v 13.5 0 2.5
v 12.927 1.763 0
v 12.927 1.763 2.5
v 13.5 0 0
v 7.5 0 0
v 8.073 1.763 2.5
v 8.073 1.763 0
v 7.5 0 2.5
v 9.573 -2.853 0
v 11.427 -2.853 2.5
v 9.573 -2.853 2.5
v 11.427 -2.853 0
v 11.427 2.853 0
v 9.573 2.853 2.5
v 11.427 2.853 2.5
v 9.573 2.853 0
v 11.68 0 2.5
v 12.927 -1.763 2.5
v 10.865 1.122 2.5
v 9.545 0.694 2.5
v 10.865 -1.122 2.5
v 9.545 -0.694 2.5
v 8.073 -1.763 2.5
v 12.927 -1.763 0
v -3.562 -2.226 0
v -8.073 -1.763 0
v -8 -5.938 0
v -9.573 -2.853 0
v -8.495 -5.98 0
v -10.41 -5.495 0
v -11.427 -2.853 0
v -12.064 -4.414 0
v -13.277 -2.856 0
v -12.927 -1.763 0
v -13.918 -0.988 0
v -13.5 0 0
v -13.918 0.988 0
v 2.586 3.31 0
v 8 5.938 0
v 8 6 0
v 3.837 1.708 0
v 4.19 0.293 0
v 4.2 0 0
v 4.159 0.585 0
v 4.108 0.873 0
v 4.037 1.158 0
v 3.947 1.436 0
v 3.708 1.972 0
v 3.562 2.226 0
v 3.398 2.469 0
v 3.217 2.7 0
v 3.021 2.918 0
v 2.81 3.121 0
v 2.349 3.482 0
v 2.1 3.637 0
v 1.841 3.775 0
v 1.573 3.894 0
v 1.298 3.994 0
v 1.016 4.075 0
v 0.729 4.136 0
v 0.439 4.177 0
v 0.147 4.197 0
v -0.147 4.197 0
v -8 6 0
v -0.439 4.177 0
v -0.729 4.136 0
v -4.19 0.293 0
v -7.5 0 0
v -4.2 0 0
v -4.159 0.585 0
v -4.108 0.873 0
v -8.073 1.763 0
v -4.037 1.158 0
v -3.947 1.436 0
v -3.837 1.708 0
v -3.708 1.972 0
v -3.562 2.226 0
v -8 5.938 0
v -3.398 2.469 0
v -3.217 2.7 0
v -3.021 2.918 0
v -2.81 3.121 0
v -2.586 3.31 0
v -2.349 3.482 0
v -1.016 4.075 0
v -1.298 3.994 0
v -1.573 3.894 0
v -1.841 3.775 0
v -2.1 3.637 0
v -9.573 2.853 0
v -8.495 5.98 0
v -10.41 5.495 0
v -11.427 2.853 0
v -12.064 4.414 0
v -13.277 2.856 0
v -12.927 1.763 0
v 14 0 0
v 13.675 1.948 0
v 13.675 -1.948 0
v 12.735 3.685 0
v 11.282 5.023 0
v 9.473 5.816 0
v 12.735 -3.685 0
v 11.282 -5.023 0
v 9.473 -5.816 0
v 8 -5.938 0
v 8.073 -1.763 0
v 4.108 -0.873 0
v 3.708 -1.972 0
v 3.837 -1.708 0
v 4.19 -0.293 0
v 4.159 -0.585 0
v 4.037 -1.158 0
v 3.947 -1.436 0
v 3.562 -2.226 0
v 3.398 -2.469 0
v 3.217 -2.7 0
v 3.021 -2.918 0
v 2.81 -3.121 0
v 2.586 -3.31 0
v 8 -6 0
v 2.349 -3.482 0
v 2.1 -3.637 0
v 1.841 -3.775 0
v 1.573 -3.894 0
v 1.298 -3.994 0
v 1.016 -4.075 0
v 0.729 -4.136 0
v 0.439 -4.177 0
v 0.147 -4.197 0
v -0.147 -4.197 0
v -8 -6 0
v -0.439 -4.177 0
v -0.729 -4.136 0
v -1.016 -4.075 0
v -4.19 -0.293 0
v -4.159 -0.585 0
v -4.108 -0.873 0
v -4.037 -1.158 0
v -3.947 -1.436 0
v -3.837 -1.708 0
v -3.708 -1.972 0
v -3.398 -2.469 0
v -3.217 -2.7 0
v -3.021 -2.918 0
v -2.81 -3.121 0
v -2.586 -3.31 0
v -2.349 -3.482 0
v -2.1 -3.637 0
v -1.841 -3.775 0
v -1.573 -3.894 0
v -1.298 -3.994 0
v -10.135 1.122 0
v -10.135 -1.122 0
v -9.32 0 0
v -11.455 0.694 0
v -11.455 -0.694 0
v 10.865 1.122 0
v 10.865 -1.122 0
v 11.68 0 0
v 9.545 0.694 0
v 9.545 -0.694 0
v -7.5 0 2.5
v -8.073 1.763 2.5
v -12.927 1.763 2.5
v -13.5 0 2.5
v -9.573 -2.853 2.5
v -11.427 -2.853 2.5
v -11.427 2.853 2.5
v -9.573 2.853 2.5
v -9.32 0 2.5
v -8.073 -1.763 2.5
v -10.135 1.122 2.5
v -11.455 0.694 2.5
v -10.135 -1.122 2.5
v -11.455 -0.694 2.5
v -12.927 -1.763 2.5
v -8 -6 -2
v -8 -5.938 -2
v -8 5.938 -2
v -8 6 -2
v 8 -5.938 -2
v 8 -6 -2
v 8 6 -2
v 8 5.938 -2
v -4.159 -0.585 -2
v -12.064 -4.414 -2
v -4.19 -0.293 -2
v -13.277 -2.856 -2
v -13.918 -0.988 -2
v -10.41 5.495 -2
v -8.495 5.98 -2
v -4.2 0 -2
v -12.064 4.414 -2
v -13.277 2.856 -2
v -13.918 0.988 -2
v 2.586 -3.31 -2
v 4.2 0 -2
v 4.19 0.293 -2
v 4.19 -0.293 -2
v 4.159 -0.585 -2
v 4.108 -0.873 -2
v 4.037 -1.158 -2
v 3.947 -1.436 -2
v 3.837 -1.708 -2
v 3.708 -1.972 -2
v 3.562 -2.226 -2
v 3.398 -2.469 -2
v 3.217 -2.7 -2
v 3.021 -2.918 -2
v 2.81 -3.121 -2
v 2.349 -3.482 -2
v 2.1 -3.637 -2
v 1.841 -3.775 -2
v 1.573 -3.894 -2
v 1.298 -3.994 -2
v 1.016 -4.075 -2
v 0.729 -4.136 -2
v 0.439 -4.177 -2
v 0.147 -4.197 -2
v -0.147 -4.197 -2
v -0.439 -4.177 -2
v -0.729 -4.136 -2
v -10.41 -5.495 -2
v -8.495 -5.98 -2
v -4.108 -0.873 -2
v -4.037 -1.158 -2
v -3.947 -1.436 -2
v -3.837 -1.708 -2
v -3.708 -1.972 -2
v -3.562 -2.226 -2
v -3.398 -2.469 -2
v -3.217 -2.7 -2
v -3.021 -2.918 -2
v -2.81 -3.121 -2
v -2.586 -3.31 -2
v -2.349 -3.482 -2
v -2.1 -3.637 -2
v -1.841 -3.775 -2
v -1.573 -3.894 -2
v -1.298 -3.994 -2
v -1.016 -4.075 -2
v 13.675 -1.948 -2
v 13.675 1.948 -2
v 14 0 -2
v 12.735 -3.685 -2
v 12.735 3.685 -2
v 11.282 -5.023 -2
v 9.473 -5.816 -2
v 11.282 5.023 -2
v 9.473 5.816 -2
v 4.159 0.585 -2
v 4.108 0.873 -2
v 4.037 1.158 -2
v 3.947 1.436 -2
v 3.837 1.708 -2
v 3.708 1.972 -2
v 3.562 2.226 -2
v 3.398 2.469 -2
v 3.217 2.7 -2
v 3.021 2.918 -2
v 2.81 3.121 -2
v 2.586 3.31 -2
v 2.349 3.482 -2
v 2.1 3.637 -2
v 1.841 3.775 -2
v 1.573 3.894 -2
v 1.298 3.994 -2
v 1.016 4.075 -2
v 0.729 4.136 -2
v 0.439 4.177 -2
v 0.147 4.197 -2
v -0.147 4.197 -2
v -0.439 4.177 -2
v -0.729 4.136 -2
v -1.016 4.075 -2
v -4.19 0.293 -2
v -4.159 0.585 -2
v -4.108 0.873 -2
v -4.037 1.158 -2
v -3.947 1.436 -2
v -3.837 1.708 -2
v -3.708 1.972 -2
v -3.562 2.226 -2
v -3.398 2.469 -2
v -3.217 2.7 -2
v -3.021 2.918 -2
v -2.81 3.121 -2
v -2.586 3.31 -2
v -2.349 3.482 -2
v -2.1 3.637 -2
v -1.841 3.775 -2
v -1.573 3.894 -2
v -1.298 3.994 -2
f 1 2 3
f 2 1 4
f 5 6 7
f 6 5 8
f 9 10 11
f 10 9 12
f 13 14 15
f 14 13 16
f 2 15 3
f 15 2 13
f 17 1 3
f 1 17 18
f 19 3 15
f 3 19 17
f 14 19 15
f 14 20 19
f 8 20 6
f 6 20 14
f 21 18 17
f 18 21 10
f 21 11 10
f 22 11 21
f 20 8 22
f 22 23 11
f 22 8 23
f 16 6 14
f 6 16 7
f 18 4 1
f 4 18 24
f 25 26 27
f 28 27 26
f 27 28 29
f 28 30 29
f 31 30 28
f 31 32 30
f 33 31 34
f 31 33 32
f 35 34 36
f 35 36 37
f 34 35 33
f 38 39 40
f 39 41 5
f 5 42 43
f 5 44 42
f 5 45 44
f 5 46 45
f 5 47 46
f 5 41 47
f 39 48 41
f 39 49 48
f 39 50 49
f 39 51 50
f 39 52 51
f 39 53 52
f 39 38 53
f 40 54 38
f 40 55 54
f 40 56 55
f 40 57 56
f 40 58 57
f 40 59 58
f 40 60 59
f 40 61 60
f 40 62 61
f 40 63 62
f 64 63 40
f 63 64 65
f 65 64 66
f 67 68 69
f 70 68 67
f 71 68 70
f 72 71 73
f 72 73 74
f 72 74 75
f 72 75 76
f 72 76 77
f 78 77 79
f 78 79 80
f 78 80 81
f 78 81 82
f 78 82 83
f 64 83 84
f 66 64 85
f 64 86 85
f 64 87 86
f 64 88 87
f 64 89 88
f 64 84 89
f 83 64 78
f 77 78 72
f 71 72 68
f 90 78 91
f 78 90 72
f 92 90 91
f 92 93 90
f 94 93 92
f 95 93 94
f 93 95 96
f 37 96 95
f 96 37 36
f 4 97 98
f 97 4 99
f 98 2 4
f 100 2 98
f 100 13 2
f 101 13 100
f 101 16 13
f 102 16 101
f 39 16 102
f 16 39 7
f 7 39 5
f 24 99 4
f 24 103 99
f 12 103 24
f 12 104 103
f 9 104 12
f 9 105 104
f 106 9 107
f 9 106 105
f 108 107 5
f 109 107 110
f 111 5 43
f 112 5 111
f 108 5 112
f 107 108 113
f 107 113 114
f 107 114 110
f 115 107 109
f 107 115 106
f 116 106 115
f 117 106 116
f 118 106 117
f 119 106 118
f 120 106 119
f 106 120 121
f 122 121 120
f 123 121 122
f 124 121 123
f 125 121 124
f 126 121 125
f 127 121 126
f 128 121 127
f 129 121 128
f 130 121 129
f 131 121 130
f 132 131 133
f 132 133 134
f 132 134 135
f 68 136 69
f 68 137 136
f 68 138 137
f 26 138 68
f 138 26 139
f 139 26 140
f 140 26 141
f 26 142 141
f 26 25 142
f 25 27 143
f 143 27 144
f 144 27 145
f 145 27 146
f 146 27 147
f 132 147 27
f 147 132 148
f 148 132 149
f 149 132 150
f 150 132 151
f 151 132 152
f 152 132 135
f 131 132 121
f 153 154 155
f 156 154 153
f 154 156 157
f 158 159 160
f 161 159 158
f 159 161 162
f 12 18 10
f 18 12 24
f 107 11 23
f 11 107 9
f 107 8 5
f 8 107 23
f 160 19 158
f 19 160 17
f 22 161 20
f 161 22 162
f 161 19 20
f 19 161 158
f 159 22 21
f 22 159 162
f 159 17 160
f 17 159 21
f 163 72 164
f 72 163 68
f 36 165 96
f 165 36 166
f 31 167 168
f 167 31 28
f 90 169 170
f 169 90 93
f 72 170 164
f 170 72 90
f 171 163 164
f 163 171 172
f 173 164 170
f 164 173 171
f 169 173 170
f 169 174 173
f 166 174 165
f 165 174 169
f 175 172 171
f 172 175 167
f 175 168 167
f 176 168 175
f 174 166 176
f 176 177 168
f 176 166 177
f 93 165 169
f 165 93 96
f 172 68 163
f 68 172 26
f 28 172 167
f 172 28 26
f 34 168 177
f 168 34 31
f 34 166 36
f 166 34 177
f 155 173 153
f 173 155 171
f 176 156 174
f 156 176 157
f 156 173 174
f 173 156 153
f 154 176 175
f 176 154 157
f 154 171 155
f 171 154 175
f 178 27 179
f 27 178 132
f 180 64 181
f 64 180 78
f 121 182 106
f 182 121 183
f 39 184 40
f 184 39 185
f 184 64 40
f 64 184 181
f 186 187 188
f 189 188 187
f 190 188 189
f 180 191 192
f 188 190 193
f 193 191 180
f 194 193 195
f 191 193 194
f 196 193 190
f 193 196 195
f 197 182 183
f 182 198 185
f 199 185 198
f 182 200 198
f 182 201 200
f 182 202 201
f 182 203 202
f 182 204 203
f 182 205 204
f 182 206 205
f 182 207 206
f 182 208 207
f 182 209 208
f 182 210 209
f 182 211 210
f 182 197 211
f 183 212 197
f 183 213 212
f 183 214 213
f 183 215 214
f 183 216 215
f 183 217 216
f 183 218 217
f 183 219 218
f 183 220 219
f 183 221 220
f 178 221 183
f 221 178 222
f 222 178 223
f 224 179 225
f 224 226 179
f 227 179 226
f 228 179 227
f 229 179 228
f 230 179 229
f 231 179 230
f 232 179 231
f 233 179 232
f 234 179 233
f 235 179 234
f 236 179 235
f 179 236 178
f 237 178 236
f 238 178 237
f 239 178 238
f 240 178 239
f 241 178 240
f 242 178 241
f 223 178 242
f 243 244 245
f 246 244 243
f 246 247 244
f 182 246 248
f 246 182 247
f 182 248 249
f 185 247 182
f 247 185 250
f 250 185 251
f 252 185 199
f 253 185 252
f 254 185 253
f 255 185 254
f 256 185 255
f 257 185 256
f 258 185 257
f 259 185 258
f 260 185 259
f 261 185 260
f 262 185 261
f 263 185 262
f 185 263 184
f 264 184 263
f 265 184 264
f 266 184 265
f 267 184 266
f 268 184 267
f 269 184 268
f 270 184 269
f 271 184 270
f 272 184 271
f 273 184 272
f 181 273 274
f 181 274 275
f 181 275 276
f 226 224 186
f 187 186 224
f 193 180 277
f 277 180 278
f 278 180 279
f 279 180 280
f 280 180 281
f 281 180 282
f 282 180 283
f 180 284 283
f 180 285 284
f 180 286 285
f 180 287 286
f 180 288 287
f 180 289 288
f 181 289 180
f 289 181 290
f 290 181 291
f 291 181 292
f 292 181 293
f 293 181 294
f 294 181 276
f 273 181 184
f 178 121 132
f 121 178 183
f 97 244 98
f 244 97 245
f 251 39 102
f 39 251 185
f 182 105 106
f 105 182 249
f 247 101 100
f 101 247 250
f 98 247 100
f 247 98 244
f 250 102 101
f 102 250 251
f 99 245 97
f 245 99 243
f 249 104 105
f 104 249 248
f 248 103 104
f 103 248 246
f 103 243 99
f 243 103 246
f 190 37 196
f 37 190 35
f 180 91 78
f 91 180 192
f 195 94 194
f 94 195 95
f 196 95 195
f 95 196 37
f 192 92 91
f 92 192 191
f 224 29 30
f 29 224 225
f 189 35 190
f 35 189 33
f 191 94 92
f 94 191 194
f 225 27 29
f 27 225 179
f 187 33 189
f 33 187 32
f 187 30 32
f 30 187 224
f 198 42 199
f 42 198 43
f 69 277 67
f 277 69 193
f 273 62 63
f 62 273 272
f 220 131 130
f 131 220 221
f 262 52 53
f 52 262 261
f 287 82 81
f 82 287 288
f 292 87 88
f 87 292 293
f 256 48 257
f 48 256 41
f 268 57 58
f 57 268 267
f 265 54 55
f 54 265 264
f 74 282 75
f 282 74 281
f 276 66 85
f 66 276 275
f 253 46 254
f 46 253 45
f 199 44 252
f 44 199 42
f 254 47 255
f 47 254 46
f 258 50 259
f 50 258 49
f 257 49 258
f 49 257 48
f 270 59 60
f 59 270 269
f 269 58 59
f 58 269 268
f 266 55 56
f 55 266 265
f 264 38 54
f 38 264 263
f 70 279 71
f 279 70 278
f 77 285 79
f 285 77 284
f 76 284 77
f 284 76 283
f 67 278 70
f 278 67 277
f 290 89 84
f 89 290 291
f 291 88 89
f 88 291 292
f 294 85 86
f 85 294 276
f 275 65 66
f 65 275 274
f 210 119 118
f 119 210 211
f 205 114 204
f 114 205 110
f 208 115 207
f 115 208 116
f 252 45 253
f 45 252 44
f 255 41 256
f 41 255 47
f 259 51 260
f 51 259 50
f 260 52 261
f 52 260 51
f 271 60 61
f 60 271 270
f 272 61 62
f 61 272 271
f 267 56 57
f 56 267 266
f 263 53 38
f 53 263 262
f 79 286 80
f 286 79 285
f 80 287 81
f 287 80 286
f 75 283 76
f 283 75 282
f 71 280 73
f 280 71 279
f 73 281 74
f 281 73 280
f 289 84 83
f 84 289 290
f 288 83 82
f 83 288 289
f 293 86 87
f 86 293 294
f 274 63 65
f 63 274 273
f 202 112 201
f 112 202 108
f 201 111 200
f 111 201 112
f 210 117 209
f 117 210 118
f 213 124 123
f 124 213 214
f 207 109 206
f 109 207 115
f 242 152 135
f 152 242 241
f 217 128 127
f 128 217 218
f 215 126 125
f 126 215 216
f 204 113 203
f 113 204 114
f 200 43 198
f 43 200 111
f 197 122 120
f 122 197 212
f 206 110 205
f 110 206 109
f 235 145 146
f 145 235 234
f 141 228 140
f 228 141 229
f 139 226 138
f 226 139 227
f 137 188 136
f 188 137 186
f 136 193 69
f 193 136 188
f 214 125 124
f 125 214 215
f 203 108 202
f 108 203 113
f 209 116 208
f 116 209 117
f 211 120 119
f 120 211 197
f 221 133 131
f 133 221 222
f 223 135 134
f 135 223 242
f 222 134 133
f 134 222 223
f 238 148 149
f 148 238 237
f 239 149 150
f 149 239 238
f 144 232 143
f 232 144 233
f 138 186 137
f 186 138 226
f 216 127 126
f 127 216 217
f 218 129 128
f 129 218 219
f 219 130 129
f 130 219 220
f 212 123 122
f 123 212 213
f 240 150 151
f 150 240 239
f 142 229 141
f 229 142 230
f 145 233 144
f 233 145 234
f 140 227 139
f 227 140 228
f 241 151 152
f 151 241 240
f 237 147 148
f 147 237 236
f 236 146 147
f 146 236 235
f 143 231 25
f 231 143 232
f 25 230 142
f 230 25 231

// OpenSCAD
camera_radius = 4.2;

union() {
    translate([21/2, 0, 0])  screw();
    translate([-21/2, 0, 0]) screw();
    translate([0, 0, -1]) difference() {
        union() {
            cube([8*2, 12, 2], center=true);
            translate([8, 0, 0])  cylinder(h=2, r=6, center=true);
            translate([-8, 0, 0]) cylinder(h=2, r=6, center=true);
        }
        cylinder(h=100, r=camera_radius, center=true, $fn=90);
    }
}

module screw(height = 2.5)
{
    translate([0, 0, height/2]) difference() {
        cylinder(h = height, r=3.00, center=true);
        cylinder(h = height+0.1, r=1.18, center=true);
    }
}
